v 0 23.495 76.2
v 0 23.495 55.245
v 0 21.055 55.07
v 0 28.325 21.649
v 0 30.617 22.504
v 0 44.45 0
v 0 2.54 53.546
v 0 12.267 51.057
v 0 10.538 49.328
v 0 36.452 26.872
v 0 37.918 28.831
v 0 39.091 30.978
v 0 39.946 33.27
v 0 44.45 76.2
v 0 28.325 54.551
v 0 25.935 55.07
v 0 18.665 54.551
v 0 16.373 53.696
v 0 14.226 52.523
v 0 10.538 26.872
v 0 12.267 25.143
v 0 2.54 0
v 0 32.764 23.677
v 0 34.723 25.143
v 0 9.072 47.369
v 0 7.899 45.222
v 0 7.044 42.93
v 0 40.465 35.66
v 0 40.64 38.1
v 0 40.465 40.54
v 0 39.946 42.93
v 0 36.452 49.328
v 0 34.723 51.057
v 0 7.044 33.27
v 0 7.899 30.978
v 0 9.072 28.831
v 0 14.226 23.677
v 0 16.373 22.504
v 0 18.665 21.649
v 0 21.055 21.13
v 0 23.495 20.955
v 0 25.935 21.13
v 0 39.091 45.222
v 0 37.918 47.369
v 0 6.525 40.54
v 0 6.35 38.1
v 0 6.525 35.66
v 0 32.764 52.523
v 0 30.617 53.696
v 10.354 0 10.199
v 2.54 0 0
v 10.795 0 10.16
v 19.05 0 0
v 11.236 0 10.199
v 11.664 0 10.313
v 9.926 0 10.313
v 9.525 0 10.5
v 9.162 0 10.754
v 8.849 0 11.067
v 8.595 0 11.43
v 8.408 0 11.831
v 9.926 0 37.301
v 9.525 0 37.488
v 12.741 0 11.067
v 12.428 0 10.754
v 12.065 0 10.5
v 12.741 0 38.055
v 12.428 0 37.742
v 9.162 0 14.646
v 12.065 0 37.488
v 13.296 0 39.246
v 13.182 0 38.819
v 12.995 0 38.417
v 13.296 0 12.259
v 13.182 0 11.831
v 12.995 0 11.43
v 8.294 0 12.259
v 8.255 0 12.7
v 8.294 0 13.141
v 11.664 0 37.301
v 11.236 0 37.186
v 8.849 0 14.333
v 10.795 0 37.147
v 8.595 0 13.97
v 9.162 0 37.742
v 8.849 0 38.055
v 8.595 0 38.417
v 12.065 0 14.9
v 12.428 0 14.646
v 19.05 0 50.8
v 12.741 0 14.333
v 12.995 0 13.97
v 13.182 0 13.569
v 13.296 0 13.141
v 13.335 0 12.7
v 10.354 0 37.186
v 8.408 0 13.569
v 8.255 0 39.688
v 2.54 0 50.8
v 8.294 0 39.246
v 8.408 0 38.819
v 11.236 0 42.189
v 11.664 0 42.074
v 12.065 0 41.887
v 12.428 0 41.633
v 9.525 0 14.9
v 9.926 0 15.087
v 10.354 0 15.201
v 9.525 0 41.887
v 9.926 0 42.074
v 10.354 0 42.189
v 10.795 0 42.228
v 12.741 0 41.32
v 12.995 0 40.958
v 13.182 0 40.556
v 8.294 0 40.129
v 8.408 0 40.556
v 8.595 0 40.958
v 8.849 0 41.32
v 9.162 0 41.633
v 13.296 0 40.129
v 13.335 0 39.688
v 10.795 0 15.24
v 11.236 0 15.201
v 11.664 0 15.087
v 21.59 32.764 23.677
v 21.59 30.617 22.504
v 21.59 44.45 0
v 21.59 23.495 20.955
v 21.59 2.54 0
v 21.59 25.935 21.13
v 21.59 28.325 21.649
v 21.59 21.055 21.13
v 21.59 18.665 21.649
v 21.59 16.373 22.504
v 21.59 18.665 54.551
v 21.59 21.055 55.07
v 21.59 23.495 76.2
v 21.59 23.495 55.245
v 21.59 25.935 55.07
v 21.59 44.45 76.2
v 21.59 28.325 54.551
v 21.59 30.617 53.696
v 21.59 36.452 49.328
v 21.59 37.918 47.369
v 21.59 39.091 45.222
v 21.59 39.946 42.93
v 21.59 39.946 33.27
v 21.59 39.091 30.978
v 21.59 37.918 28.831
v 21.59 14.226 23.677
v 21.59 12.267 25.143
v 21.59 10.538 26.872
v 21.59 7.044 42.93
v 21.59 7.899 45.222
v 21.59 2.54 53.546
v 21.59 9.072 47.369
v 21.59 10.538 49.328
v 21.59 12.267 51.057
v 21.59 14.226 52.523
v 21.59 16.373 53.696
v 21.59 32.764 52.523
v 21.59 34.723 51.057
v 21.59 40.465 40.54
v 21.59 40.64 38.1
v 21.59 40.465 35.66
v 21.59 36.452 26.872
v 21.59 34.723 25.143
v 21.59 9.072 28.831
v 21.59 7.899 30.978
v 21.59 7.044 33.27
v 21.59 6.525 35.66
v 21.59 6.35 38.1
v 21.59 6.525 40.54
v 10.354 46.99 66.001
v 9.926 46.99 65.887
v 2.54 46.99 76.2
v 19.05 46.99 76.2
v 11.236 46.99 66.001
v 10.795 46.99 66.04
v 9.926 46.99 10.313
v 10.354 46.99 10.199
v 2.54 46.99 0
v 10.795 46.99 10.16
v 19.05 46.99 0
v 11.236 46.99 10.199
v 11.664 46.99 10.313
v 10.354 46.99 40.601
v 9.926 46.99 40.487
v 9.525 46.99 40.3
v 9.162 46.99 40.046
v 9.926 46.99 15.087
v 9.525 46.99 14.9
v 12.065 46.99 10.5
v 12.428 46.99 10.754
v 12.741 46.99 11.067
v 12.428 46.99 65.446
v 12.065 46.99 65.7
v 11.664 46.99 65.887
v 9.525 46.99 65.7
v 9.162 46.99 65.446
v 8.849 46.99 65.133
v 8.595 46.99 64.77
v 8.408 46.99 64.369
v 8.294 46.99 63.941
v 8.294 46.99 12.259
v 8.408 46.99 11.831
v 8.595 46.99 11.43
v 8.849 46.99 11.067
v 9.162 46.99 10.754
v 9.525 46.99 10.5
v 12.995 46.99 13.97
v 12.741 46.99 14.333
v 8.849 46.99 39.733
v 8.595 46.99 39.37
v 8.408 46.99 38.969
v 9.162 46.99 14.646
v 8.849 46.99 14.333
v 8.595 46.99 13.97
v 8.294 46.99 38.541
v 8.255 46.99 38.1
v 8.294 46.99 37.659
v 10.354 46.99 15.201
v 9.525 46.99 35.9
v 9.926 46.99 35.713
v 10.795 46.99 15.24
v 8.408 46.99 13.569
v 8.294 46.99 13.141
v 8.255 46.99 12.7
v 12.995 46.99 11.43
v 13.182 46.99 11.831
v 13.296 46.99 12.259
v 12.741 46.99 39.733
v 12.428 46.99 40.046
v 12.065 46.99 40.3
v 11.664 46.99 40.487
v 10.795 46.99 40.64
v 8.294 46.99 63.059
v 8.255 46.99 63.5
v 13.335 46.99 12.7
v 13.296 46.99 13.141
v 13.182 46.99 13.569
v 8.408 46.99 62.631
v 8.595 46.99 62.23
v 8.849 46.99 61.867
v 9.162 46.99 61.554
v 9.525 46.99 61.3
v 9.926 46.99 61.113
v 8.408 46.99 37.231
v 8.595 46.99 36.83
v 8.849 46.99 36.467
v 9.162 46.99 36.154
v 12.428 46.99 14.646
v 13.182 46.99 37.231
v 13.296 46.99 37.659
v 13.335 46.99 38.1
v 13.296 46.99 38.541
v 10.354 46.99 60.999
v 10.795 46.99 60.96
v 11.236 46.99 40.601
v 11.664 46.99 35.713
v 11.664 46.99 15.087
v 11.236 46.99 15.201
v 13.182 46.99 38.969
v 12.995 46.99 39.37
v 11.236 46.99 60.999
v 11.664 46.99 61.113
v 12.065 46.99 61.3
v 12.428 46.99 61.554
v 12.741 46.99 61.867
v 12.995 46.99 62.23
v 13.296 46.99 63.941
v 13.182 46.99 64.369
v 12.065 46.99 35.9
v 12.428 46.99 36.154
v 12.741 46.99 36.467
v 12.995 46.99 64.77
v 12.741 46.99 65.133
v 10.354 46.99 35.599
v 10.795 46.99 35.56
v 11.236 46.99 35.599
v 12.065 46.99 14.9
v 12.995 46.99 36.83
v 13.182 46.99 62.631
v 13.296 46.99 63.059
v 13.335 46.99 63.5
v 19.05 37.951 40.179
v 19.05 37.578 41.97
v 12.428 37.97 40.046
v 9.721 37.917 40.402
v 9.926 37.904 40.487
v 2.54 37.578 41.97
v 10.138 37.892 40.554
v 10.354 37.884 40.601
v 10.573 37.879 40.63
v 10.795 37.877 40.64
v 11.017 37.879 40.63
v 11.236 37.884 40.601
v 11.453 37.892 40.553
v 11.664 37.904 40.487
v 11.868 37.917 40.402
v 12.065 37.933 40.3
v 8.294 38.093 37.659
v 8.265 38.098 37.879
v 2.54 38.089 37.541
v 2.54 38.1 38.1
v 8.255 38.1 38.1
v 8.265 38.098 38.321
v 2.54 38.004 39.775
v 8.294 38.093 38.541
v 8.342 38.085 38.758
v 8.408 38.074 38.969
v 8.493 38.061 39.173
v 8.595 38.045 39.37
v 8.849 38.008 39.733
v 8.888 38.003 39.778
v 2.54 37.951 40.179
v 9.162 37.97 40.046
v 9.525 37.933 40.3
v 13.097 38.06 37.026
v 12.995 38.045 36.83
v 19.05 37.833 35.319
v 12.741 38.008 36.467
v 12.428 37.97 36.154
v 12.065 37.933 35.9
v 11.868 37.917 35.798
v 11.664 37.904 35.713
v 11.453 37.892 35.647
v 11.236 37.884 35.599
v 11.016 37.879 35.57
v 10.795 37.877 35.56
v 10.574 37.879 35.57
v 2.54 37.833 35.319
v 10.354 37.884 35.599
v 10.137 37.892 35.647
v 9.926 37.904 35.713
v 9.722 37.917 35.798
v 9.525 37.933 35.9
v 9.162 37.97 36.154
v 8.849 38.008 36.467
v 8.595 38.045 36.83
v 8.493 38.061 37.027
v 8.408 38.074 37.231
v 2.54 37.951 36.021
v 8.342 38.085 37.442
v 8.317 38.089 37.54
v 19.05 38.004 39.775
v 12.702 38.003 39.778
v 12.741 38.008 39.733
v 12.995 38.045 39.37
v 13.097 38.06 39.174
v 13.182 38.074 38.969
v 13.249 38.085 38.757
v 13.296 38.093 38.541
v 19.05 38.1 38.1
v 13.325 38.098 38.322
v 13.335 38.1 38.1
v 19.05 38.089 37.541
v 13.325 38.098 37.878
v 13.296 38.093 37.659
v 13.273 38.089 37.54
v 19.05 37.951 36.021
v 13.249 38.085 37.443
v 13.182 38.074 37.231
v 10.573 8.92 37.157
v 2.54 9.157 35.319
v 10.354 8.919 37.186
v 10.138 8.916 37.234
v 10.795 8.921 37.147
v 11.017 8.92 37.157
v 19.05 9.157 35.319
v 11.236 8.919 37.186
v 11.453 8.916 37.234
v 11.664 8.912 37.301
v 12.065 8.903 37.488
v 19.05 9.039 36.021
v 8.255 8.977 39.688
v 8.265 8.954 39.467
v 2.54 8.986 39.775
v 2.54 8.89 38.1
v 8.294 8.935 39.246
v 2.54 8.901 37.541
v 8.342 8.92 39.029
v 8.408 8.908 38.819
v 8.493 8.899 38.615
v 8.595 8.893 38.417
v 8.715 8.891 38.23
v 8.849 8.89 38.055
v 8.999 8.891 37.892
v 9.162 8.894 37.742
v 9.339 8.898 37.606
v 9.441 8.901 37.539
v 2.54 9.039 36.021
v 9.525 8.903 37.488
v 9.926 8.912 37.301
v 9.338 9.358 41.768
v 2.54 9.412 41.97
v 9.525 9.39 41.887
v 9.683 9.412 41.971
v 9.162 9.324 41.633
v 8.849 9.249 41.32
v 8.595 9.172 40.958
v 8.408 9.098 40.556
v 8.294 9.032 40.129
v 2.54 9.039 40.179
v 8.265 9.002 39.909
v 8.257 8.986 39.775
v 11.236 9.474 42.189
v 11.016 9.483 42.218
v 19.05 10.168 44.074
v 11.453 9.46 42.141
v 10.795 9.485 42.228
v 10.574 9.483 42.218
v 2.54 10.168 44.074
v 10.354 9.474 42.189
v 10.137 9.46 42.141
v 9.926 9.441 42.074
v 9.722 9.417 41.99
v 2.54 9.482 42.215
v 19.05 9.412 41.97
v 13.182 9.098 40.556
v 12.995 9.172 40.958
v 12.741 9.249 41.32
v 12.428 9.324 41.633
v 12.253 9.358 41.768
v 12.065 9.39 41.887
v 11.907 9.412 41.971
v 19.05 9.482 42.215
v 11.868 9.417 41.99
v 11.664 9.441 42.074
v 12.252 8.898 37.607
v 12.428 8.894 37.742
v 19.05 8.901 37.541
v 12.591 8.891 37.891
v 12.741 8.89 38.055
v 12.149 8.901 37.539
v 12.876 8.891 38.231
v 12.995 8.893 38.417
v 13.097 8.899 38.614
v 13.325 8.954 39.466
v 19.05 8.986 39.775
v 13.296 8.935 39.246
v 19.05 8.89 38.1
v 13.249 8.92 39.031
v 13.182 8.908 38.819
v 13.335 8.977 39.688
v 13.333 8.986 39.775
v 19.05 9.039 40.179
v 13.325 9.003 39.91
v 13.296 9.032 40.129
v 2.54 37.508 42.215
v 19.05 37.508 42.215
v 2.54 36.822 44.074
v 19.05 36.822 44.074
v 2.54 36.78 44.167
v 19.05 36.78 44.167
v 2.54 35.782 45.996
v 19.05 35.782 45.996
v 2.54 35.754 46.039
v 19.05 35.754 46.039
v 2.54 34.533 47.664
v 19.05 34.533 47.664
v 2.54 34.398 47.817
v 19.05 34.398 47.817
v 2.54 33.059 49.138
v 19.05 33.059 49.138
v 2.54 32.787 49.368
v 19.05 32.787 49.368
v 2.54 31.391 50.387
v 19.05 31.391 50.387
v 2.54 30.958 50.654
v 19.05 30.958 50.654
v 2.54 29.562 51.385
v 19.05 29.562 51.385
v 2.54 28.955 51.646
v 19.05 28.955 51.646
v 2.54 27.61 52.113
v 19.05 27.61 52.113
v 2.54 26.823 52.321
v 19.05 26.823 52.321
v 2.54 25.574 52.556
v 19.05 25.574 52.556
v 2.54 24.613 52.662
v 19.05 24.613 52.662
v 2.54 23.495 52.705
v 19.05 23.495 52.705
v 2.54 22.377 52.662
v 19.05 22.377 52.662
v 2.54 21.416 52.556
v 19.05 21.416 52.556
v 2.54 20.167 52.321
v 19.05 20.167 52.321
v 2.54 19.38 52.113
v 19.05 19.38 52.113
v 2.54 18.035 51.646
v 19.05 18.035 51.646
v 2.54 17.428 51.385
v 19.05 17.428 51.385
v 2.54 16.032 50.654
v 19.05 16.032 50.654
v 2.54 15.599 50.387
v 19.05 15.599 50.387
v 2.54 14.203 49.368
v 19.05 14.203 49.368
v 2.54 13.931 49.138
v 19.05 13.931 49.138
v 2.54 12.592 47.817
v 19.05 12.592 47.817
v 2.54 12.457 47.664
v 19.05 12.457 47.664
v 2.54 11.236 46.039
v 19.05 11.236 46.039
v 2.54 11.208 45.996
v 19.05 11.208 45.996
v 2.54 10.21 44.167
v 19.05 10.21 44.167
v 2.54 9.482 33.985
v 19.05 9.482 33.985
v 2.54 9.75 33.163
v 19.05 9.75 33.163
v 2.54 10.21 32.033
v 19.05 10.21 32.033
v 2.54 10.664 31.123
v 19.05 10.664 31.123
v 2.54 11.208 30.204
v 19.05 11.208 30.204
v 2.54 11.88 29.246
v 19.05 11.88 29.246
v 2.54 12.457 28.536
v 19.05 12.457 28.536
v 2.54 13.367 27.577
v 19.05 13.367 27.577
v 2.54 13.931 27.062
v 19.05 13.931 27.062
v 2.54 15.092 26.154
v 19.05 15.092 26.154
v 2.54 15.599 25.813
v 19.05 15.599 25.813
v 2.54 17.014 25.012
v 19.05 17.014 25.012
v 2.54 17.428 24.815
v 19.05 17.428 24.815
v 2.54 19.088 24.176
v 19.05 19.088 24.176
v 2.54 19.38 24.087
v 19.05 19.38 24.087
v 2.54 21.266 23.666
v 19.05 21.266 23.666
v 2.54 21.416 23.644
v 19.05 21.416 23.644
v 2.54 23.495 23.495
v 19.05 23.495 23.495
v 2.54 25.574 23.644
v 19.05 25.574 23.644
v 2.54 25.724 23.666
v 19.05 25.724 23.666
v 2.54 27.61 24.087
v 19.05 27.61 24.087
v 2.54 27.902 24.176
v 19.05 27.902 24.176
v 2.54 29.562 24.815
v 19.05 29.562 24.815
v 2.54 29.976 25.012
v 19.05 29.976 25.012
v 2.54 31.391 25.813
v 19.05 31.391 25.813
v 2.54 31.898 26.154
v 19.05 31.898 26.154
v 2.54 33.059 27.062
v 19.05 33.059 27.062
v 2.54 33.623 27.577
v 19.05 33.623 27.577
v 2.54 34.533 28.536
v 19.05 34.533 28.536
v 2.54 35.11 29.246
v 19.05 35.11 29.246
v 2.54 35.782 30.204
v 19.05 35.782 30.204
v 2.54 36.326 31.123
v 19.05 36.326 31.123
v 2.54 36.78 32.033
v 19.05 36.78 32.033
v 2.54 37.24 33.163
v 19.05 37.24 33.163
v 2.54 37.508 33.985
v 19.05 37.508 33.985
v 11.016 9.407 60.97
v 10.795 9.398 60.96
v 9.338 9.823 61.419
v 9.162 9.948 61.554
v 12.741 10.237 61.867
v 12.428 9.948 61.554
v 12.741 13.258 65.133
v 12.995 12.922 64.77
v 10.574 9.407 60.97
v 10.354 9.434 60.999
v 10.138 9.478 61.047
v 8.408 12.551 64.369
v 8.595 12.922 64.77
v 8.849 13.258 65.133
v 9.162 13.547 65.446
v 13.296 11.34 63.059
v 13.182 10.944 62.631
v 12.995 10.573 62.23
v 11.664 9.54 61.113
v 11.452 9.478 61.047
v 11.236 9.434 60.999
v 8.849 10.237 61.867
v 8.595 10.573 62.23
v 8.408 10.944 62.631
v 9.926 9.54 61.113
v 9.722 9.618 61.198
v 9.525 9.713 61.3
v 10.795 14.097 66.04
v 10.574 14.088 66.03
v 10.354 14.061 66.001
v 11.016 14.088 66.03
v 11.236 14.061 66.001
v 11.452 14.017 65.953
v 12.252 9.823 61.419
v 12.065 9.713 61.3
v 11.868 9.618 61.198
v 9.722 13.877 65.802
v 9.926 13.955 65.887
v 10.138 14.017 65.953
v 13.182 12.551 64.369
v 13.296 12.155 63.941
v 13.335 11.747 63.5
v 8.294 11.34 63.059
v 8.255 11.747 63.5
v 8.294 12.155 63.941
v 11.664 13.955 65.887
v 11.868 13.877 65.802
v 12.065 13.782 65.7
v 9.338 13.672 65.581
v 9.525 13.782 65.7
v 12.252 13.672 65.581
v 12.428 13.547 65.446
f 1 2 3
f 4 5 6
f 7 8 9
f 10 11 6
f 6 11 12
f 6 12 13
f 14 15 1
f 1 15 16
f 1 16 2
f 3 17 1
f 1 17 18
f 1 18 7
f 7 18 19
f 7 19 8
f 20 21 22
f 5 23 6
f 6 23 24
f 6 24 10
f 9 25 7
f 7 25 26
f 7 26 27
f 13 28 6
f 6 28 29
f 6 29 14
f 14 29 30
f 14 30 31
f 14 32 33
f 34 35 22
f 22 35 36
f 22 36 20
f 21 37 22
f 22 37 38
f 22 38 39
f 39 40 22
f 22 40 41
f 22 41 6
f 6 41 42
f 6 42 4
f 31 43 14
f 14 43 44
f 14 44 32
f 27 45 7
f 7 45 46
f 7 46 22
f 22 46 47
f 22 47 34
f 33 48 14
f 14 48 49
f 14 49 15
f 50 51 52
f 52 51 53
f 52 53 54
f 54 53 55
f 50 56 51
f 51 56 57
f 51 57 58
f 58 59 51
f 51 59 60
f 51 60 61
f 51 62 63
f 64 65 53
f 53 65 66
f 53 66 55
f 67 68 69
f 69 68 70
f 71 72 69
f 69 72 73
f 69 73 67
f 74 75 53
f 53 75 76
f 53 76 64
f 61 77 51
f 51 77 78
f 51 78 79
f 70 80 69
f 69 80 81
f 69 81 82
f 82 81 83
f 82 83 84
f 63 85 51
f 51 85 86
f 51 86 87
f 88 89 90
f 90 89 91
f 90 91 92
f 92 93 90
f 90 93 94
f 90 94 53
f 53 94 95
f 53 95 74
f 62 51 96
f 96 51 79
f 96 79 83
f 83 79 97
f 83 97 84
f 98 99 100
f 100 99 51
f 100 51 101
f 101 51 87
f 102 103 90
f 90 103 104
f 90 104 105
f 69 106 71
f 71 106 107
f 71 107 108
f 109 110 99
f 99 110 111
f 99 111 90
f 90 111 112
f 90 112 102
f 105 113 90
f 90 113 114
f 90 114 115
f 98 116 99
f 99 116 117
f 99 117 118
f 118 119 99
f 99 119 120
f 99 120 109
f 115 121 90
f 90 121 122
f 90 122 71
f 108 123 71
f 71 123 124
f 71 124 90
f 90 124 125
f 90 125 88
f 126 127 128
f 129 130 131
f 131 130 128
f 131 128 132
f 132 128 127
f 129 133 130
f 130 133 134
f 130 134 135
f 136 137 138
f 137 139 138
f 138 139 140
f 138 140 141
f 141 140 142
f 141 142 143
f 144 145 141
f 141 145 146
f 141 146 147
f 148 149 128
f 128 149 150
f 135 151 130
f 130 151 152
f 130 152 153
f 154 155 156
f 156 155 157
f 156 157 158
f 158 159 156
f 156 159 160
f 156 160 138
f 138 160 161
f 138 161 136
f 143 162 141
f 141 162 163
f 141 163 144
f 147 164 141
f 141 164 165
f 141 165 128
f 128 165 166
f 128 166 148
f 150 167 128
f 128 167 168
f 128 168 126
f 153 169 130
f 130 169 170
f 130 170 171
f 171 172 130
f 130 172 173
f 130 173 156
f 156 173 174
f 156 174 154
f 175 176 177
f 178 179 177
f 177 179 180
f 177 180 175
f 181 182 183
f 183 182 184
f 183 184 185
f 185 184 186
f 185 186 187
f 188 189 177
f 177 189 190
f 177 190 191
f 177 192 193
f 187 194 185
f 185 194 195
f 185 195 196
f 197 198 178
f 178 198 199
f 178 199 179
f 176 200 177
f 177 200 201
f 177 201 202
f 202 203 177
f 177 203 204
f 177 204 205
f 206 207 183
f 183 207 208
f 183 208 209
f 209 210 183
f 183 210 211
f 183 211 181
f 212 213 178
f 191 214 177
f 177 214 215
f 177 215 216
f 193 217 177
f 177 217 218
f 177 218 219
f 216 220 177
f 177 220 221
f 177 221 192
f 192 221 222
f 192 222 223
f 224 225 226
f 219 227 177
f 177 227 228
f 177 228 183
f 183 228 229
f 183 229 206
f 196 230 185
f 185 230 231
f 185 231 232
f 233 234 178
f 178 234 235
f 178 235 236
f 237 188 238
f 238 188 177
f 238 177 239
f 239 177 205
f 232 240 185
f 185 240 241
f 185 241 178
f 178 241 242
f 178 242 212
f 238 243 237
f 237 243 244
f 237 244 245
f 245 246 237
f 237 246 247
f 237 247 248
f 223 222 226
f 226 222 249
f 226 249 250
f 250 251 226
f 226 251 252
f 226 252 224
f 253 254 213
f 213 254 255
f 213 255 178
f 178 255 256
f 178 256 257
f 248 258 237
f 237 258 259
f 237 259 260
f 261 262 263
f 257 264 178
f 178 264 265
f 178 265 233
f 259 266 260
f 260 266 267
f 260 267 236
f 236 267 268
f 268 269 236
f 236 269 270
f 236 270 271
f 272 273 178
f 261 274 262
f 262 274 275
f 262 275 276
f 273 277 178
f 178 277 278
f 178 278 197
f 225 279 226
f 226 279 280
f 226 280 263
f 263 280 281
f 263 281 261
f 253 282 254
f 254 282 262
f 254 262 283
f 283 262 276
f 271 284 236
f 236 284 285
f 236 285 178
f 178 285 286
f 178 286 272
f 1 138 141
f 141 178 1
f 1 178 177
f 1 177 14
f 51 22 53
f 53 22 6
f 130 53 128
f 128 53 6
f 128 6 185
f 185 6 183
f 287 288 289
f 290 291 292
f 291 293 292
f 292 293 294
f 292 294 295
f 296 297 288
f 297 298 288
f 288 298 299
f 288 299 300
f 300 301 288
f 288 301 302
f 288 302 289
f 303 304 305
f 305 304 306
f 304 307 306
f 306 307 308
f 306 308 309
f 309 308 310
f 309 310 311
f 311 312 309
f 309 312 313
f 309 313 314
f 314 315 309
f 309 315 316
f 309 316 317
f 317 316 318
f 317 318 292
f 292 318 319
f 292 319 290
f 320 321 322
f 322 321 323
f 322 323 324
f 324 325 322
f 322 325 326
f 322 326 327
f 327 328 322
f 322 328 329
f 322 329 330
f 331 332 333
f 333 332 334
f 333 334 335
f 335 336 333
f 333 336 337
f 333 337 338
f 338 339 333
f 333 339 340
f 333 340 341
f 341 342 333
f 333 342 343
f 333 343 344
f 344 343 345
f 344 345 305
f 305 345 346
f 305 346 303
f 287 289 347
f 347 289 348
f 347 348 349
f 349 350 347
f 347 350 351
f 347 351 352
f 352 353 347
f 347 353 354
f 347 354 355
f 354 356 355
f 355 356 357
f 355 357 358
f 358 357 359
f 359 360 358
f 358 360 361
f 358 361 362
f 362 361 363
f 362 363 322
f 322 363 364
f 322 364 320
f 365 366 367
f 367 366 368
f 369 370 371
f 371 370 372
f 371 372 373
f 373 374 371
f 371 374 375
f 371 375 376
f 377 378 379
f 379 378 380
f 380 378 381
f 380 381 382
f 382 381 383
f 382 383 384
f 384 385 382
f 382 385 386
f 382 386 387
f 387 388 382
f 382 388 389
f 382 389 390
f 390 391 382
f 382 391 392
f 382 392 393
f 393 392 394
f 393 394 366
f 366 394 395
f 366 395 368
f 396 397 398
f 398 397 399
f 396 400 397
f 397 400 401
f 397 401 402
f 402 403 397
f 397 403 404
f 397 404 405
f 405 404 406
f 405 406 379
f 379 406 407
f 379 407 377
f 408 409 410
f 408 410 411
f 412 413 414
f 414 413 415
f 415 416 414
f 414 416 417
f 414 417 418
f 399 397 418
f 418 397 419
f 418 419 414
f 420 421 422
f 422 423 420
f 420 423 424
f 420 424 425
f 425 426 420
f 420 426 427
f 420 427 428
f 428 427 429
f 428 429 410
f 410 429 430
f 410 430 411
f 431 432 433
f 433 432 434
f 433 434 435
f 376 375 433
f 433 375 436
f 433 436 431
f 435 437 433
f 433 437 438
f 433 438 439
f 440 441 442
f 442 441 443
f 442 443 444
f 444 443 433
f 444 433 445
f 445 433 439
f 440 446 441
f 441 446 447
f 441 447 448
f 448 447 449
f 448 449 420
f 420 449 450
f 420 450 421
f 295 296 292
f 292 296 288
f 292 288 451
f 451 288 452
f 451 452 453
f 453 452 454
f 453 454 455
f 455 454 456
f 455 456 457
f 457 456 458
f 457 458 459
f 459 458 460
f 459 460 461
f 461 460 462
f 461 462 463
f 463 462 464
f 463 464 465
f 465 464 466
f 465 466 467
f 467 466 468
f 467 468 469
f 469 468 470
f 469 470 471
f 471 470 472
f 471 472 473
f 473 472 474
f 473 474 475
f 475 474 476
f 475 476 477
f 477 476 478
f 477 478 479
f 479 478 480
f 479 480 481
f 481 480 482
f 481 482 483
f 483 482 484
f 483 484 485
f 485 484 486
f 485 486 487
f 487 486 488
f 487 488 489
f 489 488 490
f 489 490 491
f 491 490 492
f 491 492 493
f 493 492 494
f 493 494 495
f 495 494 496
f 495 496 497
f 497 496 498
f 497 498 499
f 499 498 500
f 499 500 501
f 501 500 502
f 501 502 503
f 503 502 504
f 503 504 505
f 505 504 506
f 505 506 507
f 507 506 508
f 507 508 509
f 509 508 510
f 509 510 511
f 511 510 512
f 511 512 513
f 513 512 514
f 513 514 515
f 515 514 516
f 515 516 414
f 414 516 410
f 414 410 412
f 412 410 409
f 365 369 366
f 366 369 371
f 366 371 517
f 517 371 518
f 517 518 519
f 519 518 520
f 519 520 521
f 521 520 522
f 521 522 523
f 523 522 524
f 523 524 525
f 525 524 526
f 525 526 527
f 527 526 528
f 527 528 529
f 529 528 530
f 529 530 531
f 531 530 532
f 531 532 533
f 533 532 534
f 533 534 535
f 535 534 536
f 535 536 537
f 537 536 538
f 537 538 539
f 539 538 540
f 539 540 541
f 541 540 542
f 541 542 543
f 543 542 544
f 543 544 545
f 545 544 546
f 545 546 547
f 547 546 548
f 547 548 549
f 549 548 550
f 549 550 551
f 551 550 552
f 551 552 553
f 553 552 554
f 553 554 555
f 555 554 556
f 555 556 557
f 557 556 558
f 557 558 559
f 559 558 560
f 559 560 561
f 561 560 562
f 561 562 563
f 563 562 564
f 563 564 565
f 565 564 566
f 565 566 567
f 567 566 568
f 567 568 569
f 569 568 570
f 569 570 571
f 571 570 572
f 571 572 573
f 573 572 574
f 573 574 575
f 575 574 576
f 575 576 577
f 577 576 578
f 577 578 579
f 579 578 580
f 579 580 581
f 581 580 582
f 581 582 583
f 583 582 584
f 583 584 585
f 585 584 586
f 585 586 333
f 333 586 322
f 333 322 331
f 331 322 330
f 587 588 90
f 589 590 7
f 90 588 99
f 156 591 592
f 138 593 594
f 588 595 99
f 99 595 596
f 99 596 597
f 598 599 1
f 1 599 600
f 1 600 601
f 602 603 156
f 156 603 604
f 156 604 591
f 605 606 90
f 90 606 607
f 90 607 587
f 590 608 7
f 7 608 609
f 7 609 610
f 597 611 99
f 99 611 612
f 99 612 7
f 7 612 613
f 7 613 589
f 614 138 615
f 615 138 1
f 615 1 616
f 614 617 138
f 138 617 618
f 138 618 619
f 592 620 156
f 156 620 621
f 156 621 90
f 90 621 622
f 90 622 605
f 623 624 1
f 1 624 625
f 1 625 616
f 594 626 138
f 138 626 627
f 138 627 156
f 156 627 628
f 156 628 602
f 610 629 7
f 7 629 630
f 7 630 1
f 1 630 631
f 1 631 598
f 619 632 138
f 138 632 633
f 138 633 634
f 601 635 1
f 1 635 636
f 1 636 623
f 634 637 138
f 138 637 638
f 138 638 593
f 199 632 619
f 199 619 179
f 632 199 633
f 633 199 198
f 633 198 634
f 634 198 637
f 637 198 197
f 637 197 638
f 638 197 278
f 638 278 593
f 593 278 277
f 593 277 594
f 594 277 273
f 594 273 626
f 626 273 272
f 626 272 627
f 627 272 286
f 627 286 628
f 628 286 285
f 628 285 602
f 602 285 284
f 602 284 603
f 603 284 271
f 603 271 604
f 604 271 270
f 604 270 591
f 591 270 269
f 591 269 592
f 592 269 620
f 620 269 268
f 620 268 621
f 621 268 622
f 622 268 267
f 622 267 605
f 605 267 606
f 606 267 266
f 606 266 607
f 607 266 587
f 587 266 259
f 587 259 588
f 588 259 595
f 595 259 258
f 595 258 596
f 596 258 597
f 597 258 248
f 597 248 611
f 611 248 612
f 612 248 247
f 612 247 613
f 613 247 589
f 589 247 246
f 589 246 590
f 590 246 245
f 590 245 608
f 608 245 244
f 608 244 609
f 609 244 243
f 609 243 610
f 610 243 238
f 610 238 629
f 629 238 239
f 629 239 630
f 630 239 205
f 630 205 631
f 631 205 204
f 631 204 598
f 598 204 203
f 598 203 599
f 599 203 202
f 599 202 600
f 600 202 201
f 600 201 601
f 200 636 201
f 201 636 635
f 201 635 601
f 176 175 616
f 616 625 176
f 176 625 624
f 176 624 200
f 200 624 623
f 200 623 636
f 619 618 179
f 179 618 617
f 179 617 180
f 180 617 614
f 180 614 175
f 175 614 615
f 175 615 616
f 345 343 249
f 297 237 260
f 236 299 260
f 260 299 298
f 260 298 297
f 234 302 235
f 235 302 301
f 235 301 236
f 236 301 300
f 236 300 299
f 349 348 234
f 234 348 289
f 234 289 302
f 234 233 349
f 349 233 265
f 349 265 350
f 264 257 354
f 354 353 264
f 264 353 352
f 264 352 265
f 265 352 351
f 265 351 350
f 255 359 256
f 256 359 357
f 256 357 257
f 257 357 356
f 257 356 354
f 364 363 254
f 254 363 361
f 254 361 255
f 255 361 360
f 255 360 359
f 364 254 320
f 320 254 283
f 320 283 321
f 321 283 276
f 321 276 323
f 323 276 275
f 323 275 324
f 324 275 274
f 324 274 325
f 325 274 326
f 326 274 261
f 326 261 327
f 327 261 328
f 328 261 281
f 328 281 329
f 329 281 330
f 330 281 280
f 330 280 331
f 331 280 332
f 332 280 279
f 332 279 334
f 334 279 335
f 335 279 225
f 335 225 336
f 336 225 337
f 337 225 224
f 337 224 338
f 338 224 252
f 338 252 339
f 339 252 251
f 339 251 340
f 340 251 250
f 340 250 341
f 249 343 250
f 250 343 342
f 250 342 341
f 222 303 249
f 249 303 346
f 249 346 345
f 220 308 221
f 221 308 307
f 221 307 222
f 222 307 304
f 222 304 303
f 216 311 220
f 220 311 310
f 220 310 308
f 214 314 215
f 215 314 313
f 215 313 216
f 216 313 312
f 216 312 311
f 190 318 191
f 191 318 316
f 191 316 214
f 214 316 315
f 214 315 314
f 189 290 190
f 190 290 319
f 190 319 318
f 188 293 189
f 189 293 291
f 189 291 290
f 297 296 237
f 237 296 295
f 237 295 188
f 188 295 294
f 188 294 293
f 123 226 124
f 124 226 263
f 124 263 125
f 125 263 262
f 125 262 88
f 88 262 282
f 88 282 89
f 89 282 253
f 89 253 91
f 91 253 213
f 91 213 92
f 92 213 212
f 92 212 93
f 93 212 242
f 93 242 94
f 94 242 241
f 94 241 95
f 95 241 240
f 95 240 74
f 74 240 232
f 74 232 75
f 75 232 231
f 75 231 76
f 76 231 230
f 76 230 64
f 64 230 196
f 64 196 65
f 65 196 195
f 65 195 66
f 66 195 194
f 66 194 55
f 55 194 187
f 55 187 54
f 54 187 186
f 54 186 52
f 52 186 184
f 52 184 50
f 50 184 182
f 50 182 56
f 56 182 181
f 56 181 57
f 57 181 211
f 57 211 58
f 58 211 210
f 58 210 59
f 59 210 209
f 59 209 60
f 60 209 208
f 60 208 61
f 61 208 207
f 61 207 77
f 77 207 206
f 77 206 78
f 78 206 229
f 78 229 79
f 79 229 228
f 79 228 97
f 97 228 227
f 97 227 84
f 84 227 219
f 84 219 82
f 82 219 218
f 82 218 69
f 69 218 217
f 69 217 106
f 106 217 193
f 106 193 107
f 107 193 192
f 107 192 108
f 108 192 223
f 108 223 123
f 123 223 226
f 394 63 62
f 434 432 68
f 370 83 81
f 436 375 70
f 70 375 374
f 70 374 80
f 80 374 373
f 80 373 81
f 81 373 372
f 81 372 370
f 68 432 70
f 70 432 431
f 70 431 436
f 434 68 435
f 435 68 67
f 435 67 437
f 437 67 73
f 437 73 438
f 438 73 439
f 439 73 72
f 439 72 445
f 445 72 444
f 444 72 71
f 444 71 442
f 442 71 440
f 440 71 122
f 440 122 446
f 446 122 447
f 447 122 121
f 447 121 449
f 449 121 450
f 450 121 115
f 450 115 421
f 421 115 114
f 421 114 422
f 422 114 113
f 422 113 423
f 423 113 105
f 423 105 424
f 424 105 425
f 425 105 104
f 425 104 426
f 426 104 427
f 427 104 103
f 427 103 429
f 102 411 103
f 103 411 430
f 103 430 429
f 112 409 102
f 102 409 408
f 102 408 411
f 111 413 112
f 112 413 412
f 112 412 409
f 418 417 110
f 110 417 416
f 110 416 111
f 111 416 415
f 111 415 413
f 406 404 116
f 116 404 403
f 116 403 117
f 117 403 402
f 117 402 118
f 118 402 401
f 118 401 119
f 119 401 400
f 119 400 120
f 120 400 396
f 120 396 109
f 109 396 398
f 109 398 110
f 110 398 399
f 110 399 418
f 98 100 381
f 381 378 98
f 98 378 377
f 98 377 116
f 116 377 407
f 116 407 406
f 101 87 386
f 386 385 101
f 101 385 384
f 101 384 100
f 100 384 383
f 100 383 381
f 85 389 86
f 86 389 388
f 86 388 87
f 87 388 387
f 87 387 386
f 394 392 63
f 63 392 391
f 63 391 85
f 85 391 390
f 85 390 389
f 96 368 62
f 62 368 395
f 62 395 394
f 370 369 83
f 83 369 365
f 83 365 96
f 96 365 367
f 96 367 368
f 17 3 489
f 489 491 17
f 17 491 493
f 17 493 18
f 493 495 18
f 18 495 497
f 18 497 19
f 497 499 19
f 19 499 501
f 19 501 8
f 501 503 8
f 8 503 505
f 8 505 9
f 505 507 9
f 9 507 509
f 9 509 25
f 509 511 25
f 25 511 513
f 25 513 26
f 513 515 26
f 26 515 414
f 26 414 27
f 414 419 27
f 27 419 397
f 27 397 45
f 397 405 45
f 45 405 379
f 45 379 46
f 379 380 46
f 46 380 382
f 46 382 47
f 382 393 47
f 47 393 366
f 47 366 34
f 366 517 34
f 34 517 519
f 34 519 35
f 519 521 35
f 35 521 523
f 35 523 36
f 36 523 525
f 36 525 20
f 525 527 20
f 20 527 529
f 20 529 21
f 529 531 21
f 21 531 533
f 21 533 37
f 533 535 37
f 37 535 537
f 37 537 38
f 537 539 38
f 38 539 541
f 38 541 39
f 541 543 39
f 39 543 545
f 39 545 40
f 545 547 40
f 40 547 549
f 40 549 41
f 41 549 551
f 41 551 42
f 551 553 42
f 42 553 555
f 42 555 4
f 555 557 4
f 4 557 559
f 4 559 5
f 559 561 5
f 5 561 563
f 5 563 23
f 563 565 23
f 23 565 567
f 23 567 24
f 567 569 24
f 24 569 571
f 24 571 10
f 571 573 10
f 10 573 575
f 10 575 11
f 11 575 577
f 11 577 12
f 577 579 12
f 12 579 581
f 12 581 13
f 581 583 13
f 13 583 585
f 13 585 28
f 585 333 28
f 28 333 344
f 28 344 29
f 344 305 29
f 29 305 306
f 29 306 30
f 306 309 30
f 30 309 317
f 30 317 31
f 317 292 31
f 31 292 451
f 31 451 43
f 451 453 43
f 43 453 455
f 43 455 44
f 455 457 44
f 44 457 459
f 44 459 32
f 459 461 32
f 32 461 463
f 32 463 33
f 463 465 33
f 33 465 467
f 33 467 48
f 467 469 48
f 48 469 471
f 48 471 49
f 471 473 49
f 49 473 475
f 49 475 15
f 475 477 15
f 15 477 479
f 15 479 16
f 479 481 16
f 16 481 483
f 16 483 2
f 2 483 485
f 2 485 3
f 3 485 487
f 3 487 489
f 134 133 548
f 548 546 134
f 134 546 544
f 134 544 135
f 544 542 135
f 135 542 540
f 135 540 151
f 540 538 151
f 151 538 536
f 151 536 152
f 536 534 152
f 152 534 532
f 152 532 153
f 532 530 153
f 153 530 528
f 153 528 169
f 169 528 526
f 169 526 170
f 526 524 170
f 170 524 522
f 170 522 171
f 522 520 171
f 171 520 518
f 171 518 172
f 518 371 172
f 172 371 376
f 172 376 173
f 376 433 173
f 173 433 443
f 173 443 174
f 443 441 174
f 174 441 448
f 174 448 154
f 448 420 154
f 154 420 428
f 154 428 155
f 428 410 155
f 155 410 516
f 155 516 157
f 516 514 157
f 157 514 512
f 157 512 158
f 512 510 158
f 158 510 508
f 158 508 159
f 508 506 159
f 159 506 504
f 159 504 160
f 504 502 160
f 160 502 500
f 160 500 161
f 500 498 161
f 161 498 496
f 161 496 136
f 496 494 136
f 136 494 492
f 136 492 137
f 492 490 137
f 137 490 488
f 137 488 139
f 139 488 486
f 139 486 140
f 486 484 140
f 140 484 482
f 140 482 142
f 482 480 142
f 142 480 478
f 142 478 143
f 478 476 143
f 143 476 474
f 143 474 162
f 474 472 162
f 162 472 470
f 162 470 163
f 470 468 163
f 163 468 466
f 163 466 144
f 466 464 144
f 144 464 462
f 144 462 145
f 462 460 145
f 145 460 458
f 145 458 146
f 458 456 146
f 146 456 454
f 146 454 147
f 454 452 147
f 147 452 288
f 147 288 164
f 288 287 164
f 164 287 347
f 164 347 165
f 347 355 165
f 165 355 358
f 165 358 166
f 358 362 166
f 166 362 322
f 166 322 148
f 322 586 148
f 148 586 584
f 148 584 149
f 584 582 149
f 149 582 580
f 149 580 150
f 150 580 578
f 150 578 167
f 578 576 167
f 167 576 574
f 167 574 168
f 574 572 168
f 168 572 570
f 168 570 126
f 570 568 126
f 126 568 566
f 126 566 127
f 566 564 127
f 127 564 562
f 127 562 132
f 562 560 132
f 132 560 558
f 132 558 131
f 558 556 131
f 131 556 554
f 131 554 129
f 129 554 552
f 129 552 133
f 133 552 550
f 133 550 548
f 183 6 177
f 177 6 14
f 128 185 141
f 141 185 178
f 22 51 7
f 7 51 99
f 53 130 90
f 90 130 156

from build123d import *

# Parameters (mm, degrees)
SKETCH1_W               = 21.59
SKETCH1_H               = 46.99
BOSS_EXTRUDE1_DEPTH     = 76.2
SKETCH2_R               = 14.605
CUT_EXTRUDE1_DEPTH      = 93.090326311
CUT_EXTRUDE2_DEPTH      = 93.090326311
CUT_EXTRUDE3_REACH      = 94.09
SKETCH4_R               = 2.54
CUT_EXTRUDE4_REACH      = 94.09
CUT_EXTRUDE4_END_RADIUS = 14.605
SKETCH5_R               = 2.54
CHAMFER1_SIZE           = 2.54


with BuildPart() as part:
    # Sketch1 → Boss-Extrude1 (new body)
    with BuildSketch(Plane.XY):
        with Locations((10.795, 23.495)):
            Rectangle(SKETCH1_W, SKETCH1_H)
    extrude(amount=BOSS_EXTRUDE1_DEPTH)

    # Sketch2 → Cut-Extrude1 (cut, through all)
    with BuildSketch(Plane(origin=(21.59, 0, 0), x_dir=(0, 0, -1), z_dir=(1, 0, 0))):
        with Locations((-38.1, 23.495)):
            Circle(SKETCH2_R)
    extrude(amount=-CUT_EXTRUDE1_DEPTH, mode=Mode.SUBTRACT)

    # Sketch3 → Cut-Extrude2 (cut, through all)
    with BuildSketch(Plane(origin=(21.59, 0, 0), x_dir=(0, 0, -1), z_dir=(1, 0, 0))):
        Polygon((-50.8, 0), (-76.2, 23.495), (-76.2, 0), align=None)
    extrude(amount=-CUT_EXTRUDE2_DEPTH, mode=Mode.SUBTRACT)

    # Sketch4 → Cut-Extrude3 (cut, up to next)
    with BuildSketch(Plane(origin=(0, 46.99, 0), x_dir=(1, 0, 0), z_dir=(0, 1, 0)), mode=Mode.PRIVATE) as cut_extrude3_sk1:
        with Locations(Location((10.795, -12.7, 0), (0, 0, 270))):
            Circle(SKETCH4_R)
    cut_extrude3_tool1 = extrude(cut_extrude3_sk1.sketch, amount=-CUT_EXTRUDE3_REACH, mode=Mode.PRIVATE) & part.part
    # Sketch4 → Cut-Extrude3 (cut, up to next)
    with BuildSketch(Plane(origin=(0, 46.99, 0), x_dir=(1, 0, 0), z_dir=(0, 1, 0)), mode=Mode.PRIVATE) as cut_extrude3_sk2:
        with Locations(Location((10.795, -38.1, 0), (0, 0, 270))):
            Circle(SKETCH4_R)
    cut_extrude3_tool2 = extrude(cut_extrude3_sk2.sketch, amount=-CUT_EXTRUDE3_REACH, mode=Mode.PRIVATE) & part.part
    # Sketch4 → Cut-Extrude3 (cut, up to next)
    with BuildSketch(Plane(origin=(0, 46.99, 0), x_dir=(1, 0, 0), z_dir=(0, 1, 0)), mode=Mode.PRIVATE) as cut_extrude3_sk3:
        with Locations(Location((10.795, -63.5, 0), (0, 0, 270))):
            Circle(SKETCH4_R)
    cut_extrude3_tool3 = extrude(cut_extrude3_sk3.sketch, amount=-CUT_EXTRUDE3_REACH, mode=Mode.PRIVATE) & part.part
    add(cut_extrude3_tool1.solids().sort_by_distance((10.795, 46.99, 12.7))[0], mode=Mode.SUBTRACT)
    add(cut_extrude3_tool2.solids().sort_by_distance((10.795, 46.99, 38.1))[0], mode=Mode.SUBTRACT)
    add(cut_extrude3_tool3.solids().sort_by_distance((10.795, 46.99, 63.5))[0], mode=Mode.SUBTRACT)

    # Cut-Extrude4: up to this cylinder (the profile starts outside it)
    cut_extrude4_end = Plane(origin=(10.795, 23.495, 38.1), z_dir=(1, 0, 0)) * Cylinder(CUT_EXTRUDE4_END_RADIUS, 218.39, mode=Mode.PRIVATE)
    # Sketch5 → Cut-Extrude4 (cut, up to the surface)
    with BuildSketch(Plane.XZ, mode=Mode.PRIVATE) as cut_extrude4_sk1:
        with Locations(Location((10.795, 39.6875, 0), (0, 0, 270))):
            Circle(SKETCH5_R)
    cut_extrude4_tool1 = extrude(cut_extrude4_sk1.sketch, amount=-CUT_EXTRUDE4_REACH, mode=Mode.PRIVATE) - cut_extrude4_end
    add(cut_extrude4_tool1.solids().sort_by_distance((10.795, 0, 39.6875))[0], mode=Mode.SUBTRACT)

    # Chamfer1
    chamfer1_edges = [part.edges().sort_by_distance(p)[0] for p in [
        (0, 23.495, 52.705),
        (21.59, 23.495, 52.705),
        (21.59, 0, 25.4),
        (0, 0, 25.4),
        (0, 46.99, 38.1),
        (21.59, 46.99, 38.1),
    ]]
    chamfer(chamfer1_edges, length=CHAMFER1_SIZE)


solid = part.part
